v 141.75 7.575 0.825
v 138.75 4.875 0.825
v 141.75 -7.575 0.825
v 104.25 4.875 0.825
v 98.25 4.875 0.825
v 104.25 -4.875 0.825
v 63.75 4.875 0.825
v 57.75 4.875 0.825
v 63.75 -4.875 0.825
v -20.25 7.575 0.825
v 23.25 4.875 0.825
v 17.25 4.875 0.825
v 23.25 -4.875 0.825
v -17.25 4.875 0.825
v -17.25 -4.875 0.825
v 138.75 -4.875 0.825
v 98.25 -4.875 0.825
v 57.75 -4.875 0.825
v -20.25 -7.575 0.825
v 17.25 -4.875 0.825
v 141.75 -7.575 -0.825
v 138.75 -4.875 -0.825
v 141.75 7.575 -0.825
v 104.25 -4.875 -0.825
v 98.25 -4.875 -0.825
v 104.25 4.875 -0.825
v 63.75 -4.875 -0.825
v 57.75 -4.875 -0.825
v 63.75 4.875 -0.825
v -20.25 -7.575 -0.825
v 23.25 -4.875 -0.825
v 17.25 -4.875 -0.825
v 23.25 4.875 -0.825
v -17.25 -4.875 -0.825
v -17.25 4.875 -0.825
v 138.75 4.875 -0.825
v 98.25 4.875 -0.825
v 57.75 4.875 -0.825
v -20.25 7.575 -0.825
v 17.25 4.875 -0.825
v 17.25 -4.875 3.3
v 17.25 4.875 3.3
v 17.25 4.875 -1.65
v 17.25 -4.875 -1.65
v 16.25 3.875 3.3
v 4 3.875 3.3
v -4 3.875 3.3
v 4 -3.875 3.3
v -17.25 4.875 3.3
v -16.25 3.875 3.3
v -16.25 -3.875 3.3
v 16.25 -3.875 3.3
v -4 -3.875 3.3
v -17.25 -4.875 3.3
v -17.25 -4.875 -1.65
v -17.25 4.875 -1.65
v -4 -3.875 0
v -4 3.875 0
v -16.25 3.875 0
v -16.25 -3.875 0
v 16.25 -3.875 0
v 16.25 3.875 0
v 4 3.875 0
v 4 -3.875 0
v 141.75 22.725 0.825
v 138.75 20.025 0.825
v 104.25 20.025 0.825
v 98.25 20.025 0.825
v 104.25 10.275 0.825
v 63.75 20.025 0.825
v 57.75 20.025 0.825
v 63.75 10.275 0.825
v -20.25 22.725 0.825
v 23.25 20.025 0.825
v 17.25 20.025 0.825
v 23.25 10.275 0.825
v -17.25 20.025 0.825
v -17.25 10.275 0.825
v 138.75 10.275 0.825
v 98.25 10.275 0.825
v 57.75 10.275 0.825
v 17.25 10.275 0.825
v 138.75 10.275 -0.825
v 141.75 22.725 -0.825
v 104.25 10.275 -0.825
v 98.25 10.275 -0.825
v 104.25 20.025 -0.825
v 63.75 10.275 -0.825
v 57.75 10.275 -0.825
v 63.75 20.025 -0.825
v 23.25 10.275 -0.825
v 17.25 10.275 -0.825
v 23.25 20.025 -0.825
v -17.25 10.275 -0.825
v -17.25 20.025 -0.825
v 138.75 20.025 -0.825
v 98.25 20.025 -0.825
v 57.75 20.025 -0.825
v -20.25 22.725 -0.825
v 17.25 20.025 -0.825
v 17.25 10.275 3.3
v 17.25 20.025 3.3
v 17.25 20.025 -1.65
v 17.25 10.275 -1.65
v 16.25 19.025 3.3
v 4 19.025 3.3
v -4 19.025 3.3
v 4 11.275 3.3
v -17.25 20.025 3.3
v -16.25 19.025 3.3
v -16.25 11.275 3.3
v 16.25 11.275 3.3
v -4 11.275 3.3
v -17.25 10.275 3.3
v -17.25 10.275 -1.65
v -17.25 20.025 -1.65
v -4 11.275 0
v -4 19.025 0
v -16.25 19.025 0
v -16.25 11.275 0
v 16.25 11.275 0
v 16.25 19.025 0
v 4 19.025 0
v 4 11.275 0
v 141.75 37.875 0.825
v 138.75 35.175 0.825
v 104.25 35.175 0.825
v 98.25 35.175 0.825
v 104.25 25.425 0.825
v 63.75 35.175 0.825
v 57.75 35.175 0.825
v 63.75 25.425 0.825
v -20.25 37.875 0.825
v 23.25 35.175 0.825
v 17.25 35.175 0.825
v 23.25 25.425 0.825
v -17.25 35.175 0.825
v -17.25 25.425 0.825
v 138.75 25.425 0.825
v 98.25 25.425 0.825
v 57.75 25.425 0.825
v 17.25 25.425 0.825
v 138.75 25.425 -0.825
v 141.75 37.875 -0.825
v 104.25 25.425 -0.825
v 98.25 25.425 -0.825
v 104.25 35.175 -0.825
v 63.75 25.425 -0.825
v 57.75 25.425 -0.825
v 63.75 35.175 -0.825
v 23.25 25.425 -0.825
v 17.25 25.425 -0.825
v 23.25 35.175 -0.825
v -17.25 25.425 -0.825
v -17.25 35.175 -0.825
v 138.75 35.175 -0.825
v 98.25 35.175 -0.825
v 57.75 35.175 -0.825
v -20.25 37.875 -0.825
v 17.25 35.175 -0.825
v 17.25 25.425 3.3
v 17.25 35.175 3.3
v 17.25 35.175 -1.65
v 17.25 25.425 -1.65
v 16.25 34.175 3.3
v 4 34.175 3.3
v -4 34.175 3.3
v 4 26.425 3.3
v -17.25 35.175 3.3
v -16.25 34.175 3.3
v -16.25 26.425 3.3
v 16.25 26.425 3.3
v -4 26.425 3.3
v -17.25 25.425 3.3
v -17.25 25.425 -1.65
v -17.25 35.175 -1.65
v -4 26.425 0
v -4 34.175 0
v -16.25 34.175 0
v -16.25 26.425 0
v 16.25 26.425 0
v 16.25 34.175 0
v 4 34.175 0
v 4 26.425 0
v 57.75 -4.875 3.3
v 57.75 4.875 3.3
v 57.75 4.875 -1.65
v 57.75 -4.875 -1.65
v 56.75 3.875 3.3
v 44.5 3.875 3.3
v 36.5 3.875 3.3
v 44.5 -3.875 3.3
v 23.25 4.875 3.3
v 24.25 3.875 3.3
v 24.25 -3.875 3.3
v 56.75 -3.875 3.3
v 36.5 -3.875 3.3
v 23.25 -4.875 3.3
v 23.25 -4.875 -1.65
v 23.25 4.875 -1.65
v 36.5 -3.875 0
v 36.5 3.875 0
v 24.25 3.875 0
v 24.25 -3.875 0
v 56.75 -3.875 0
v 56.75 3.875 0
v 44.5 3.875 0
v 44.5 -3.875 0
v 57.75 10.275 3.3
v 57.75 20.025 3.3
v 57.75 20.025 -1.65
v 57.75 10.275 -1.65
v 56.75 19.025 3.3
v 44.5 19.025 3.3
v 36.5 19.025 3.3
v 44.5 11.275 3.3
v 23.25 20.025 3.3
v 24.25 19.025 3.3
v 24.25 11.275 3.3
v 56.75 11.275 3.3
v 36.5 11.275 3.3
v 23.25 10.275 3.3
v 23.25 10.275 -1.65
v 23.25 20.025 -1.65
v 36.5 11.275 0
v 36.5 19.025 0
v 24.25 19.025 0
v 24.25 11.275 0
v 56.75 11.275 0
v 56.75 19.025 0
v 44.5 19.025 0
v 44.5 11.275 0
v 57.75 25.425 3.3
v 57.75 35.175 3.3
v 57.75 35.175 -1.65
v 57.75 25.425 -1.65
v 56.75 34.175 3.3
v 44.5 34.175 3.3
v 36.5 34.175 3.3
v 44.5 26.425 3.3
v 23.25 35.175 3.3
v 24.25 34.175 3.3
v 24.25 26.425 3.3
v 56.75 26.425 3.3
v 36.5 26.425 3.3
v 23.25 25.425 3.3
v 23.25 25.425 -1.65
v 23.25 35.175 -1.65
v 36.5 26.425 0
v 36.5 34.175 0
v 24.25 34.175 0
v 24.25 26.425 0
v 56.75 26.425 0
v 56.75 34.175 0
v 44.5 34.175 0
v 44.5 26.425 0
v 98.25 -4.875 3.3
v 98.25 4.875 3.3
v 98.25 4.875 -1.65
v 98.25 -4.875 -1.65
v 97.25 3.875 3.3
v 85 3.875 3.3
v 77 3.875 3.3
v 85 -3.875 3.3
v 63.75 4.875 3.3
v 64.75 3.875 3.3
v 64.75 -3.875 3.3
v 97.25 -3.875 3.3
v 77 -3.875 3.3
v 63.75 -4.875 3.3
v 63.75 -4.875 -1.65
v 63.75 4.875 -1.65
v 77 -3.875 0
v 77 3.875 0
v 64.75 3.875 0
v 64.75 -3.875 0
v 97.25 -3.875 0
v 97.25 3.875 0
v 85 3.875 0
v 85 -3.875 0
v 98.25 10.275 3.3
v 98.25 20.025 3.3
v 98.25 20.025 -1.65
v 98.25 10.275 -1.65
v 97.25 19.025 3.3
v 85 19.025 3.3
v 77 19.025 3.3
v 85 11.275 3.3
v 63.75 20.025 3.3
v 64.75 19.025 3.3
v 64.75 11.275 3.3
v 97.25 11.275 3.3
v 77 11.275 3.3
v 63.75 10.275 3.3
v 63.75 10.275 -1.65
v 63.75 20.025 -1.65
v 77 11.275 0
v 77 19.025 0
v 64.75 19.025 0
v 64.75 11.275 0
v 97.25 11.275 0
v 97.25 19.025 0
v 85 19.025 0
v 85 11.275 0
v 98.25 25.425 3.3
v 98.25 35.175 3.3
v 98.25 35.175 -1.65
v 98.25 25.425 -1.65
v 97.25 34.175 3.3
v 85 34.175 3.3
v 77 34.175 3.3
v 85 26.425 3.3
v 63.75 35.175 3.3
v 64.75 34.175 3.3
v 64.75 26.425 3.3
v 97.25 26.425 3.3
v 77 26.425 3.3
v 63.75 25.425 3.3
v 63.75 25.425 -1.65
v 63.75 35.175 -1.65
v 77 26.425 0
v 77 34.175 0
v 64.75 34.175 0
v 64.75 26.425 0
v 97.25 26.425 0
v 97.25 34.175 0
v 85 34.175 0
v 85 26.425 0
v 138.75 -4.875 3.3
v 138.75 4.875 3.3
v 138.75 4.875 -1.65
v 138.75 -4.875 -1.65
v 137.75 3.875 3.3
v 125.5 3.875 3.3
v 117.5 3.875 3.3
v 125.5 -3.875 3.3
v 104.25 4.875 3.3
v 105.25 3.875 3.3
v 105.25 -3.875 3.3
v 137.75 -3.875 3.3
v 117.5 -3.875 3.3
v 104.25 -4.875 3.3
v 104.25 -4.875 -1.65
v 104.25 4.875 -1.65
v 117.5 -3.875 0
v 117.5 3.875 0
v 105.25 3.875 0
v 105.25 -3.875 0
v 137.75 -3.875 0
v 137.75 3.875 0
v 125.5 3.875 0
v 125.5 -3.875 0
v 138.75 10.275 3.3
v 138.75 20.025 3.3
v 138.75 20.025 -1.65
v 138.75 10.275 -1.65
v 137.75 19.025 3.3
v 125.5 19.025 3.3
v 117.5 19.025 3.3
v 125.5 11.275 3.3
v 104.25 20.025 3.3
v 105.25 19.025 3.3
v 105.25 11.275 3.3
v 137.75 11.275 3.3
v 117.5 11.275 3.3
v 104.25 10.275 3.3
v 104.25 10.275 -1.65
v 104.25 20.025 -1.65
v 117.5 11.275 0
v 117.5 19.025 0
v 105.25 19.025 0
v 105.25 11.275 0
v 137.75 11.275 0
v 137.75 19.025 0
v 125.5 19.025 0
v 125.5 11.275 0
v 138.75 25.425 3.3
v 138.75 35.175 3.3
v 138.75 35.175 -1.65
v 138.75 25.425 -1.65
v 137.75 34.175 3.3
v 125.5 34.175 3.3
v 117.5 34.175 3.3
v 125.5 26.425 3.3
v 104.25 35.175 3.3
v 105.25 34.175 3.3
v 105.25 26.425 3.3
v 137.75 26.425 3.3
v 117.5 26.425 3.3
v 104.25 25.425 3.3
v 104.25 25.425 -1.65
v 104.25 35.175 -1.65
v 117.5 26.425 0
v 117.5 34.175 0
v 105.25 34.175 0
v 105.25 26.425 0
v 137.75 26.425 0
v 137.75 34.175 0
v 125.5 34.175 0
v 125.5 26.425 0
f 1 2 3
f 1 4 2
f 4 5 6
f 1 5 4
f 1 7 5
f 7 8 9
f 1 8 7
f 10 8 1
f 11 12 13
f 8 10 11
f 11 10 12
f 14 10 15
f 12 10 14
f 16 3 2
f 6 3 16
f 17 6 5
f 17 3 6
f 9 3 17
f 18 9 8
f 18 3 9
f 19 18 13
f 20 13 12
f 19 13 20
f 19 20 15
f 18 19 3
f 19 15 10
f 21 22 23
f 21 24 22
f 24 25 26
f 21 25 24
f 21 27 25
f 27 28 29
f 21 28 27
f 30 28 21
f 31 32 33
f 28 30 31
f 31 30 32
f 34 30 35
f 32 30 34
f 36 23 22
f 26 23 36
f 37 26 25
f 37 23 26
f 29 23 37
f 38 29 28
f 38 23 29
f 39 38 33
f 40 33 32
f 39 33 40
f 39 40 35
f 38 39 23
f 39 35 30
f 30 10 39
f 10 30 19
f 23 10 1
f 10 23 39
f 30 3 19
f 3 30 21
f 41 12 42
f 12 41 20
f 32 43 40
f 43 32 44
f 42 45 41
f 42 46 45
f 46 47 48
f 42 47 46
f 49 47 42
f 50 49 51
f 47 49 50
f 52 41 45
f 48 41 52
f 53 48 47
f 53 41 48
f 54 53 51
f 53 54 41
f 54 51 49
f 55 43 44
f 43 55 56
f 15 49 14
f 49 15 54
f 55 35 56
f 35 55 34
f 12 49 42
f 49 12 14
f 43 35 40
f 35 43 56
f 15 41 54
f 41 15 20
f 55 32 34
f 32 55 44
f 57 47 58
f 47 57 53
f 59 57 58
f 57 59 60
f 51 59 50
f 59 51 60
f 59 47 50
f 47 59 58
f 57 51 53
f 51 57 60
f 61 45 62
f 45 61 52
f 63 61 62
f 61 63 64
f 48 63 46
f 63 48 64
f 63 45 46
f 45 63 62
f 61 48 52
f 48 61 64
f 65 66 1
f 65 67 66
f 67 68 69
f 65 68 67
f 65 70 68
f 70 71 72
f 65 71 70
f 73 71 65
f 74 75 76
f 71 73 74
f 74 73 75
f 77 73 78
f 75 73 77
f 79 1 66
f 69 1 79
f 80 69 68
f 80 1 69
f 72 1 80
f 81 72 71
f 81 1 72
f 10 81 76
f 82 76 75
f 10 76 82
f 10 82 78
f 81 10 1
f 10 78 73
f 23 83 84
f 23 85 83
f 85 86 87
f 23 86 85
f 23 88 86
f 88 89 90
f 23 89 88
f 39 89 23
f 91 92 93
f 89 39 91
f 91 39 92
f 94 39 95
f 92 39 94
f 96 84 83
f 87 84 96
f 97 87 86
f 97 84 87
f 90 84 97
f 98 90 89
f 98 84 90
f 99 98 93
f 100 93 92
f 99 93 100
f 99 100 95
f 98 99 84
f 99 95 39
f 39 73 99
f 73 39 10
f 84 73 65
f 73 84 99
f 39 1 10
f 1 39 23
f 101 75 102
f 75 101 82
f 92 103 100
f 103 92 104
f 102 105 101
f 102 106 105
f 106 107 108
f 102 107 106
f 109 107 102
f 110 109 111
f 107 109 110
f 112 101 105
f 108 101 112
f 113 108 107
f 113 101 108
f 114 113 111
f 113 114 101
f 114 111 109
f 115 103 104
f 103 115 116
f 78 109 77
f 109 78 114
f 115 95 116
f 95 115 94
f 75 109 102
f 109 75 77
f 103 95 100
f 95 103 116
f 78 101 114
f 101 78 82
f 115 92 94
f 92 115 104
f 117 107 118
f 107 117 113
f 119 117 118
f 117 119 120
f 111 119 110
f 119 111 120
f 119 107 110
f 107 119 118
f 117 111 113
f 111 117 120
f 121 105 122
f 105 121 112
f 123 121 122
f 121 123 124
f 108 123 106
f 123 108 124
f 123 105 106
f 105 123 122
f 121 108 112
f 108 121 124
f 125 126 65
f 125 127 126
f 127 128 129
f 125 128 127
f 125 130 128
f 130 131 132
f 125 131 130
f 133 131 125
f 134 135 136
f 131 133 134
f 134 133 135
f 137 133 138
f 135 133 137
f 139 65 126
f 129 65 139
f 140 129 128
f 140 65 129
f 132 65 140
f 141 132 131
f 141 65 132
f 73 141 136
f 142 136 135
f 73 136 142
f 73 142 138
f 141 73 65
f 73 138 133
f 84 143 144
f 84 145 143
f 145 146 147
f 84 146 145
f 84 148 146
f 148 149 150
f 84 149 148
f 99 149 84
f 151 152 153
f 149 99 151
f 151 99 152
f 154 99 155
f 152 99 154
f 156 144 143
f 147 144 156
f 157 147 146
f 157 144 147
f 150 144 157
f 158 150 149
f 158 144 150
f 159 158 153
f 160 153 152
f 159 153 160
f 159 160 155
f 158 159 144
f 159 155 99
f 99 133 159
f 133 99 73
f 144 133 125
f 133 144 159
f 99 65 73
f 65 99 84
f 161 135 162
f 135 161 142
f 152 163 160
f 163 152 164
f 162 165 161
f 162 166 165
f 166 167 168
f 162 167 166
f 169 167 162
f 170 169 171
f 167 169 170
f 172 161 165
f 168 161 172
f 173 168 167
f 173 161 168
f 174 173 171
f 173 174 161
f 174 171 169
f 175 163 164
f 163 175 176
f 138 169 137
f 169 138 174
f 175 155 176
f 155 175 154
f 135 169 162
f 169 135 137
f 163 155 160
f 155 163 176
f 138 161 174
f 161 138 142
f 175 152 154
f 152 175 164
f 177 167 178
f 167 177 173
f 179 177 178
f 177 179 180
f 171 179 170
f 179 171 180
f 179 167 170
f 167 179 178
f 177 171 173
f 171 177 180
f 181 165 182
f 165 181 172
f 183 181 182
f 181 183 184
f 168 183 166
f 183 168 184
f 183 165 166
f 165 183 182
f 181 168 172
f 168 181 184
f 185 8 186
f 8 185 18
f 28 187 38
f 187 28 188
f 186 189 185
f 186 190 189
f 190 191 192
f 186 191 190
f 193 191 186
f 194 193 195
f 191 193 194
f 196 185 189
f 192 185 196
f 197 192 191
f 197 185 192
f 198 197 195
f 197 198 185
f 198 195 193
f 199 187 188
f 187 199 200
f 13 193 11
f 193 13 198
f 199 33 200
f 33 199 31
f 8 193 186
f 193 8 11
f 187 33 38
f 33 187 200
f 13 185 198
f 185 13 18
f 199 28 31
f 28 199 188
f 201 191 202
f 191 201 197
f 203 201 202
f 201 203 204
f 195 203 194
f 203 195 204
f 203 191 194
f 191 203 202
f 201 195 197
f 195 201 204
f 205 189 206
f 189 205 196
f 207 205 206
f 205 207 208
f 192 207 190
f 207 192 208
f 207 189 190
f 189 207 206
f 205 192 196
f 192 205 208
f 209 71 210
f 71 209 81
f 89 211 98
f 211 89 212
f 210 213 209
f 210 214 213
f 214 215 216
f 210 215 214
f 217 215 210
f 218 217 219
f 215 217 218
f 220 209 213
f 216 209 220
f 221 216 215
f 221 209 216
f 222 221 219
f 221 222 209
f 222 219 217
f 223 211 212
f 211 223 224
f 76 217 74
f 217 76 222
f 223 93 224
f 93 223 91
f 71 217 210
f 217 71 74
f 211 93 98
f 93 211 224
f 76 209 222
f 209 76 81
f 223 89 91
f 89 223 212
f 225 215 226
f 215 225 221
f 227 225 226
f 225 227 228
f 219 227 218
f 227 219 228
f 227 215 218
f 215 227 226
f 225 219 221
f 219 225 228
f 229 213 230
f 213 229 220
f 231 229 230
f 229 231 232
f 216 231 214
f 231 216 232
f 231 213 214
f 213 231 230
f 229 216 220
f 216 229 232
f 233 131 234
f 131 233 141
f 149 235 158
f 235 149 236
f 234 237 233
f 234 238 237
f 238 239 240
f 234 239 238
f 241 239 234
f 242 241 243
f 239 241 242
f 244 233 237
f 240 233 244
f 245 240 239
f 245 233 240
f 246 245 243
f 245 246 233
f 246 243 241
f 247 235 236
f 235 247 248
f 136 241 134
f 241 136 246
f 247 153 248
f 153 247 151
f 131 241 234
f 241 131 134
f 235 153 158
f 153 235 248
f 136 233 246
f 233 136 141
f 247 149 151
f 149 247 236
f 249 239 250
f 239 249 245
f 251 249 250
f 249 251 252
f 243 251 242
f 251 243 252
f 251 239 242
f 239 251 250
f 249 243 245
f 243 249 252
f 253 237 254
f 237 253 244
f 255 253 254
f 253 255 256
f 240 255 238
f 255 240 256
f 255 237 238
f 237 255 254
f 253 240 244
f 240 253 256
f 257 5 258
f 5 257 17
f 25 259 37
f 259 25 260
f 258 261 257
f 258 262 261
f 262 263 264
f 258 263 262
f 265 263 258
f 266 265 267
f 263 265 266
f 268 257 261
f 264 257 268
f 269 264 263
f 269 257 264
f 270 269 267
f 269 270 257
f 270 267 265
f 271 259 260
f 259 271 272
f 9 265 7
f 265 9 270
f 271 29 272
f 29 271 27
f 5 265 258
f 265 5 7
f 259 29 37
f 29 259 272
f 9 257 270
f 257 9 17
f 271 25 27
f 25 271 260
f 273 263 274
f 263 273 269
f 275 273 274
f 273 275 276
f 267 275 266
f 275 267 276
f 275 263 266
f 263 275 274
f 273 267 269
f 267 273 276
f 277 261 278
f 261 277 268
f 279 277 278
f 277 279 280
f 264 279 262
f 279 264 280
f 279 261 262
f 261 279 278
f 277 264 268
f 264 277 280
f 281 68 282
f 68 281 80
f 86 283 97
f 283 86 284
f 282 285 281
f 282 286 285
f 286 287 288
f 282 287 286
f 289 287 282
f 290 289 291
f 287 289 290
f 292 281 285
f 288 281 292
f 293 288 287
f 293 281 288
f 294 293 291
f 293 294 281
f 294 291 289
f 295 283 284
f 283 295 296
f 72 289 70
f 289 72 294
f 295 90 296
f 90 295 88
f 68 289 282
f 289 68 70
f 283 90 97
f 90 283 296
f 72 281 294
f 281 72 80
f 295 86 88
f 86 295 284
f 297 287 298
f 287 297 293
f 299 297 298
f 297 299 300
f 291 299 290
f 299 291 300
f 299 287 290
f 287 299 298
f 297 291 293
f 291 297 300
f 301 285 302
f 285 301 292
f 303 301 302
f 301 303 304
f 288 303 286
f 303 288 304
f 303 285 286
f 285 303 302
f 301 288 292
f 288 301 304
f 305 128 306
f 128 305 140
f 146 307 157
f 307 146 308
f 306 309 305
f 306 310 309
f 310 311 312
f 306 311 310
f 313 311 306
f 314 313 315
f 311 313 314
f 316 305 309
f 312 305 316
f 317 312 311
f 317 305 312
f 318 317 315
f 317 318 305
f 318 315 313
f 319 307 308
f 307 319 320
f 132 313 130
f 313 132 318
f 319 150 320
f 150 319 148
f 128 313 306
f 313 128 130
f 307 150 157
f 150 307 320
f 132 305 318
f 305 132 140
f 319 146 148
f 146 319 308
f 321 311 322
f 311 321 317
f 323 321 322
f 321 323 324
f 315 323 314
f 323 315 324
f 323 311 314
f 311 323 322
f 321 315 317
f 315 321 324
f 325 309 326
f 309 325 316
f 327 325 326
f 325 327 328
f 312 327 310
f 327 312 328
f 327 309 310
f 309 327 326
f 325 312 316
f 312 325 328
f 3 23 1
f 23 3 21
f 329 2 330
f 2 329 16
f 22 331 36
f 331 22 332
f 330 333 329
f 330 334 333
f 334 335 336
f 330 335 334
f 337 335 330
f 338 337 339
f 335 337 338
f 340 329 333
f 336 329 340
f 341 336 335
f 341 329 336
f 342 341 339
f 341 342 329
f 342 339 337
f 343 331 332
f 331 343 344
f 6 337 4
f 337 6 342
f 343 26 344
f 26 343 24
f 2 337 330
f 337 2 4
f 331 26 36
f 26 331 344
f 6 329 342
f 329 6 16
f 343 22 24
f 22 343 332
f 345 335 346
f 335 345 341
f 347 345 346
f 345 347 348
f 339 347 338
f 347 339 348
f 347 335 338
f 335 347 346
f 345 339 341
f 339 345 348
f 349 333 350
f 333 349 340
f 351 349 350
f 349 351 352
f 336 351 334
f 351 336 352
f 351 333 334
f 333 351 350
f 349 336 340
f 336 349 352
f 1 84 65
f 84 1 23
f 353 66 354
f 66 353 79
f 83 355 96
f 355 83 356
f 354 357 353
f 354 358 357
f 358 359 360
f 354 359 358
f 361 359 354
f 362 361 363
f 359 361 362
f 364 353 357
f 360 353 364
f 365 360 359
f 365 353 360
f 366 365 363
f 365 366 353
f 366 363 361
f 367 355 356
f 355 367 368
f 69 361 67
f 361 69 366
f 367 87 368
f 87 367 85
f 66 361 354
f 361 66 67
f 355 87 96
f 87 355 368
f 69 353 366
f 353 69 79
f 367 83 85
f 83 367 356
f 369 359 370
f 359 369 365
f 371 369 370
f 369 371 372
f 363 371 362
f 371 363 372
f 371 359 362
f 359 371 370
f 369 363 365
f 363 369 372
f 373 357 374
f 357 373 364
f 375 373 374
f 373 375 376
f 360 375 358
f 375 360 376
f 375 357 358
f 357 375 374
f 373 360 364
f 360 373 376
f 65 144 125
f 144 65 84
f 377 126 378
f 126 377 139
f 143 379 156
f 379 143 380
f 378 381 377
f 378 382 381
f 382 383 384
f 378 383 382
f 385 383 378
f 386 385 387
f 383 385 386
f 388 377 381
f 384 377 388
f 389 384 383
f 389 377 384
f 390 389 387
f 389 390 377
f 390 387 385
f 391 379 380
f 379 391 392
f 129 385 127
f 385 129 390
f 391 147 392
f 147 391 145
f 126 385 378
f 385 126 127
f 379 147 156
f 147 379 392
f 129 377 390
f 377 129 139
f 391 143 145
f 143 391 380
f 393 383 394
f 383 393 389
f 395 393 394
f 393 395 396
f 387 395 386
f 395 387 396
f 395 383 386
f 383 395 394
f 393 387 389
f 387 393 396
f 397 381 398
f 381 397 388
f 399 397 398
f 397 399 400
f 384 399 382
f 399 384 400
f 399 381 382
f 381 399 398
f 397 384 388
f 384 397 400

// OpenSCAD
$footW = 24.5;
$footH = 15.5;
$spacer = 16;
$depth = 5;
$rim = 2;
$blockW = $footW * 2 + $spacer*2;
$blockL = $footH + $spacer - 1.2;

module footplate() {
    difference() {
        union() {
        cube([$blockW, $blockL, $depth], true);
        translate([0, 0, $depth/2]) { 
            cube([$footW*2+$spacer + $rim*2, 
            $footH+$rim*2, $depth*3], true);
        }
        }
        translate([-($footW + $spacer/2), 
                   -$footH/2, 0]) {
            cube([$footW, $footH, 30], false);
        }
        translate([$spacer / 2, -$footH/2, 0]) {
            cube([$footW, $footH, 30], false);
        }
    }
    
}

scale([.5, .5, .33]) {
union() {
    for (i = [0:3]) {
        for (j = [0:2]) { 
            translate([$blockW * i, $blockL * j, 0]) {
                footplate();
            } 
        }
    }
}
}
